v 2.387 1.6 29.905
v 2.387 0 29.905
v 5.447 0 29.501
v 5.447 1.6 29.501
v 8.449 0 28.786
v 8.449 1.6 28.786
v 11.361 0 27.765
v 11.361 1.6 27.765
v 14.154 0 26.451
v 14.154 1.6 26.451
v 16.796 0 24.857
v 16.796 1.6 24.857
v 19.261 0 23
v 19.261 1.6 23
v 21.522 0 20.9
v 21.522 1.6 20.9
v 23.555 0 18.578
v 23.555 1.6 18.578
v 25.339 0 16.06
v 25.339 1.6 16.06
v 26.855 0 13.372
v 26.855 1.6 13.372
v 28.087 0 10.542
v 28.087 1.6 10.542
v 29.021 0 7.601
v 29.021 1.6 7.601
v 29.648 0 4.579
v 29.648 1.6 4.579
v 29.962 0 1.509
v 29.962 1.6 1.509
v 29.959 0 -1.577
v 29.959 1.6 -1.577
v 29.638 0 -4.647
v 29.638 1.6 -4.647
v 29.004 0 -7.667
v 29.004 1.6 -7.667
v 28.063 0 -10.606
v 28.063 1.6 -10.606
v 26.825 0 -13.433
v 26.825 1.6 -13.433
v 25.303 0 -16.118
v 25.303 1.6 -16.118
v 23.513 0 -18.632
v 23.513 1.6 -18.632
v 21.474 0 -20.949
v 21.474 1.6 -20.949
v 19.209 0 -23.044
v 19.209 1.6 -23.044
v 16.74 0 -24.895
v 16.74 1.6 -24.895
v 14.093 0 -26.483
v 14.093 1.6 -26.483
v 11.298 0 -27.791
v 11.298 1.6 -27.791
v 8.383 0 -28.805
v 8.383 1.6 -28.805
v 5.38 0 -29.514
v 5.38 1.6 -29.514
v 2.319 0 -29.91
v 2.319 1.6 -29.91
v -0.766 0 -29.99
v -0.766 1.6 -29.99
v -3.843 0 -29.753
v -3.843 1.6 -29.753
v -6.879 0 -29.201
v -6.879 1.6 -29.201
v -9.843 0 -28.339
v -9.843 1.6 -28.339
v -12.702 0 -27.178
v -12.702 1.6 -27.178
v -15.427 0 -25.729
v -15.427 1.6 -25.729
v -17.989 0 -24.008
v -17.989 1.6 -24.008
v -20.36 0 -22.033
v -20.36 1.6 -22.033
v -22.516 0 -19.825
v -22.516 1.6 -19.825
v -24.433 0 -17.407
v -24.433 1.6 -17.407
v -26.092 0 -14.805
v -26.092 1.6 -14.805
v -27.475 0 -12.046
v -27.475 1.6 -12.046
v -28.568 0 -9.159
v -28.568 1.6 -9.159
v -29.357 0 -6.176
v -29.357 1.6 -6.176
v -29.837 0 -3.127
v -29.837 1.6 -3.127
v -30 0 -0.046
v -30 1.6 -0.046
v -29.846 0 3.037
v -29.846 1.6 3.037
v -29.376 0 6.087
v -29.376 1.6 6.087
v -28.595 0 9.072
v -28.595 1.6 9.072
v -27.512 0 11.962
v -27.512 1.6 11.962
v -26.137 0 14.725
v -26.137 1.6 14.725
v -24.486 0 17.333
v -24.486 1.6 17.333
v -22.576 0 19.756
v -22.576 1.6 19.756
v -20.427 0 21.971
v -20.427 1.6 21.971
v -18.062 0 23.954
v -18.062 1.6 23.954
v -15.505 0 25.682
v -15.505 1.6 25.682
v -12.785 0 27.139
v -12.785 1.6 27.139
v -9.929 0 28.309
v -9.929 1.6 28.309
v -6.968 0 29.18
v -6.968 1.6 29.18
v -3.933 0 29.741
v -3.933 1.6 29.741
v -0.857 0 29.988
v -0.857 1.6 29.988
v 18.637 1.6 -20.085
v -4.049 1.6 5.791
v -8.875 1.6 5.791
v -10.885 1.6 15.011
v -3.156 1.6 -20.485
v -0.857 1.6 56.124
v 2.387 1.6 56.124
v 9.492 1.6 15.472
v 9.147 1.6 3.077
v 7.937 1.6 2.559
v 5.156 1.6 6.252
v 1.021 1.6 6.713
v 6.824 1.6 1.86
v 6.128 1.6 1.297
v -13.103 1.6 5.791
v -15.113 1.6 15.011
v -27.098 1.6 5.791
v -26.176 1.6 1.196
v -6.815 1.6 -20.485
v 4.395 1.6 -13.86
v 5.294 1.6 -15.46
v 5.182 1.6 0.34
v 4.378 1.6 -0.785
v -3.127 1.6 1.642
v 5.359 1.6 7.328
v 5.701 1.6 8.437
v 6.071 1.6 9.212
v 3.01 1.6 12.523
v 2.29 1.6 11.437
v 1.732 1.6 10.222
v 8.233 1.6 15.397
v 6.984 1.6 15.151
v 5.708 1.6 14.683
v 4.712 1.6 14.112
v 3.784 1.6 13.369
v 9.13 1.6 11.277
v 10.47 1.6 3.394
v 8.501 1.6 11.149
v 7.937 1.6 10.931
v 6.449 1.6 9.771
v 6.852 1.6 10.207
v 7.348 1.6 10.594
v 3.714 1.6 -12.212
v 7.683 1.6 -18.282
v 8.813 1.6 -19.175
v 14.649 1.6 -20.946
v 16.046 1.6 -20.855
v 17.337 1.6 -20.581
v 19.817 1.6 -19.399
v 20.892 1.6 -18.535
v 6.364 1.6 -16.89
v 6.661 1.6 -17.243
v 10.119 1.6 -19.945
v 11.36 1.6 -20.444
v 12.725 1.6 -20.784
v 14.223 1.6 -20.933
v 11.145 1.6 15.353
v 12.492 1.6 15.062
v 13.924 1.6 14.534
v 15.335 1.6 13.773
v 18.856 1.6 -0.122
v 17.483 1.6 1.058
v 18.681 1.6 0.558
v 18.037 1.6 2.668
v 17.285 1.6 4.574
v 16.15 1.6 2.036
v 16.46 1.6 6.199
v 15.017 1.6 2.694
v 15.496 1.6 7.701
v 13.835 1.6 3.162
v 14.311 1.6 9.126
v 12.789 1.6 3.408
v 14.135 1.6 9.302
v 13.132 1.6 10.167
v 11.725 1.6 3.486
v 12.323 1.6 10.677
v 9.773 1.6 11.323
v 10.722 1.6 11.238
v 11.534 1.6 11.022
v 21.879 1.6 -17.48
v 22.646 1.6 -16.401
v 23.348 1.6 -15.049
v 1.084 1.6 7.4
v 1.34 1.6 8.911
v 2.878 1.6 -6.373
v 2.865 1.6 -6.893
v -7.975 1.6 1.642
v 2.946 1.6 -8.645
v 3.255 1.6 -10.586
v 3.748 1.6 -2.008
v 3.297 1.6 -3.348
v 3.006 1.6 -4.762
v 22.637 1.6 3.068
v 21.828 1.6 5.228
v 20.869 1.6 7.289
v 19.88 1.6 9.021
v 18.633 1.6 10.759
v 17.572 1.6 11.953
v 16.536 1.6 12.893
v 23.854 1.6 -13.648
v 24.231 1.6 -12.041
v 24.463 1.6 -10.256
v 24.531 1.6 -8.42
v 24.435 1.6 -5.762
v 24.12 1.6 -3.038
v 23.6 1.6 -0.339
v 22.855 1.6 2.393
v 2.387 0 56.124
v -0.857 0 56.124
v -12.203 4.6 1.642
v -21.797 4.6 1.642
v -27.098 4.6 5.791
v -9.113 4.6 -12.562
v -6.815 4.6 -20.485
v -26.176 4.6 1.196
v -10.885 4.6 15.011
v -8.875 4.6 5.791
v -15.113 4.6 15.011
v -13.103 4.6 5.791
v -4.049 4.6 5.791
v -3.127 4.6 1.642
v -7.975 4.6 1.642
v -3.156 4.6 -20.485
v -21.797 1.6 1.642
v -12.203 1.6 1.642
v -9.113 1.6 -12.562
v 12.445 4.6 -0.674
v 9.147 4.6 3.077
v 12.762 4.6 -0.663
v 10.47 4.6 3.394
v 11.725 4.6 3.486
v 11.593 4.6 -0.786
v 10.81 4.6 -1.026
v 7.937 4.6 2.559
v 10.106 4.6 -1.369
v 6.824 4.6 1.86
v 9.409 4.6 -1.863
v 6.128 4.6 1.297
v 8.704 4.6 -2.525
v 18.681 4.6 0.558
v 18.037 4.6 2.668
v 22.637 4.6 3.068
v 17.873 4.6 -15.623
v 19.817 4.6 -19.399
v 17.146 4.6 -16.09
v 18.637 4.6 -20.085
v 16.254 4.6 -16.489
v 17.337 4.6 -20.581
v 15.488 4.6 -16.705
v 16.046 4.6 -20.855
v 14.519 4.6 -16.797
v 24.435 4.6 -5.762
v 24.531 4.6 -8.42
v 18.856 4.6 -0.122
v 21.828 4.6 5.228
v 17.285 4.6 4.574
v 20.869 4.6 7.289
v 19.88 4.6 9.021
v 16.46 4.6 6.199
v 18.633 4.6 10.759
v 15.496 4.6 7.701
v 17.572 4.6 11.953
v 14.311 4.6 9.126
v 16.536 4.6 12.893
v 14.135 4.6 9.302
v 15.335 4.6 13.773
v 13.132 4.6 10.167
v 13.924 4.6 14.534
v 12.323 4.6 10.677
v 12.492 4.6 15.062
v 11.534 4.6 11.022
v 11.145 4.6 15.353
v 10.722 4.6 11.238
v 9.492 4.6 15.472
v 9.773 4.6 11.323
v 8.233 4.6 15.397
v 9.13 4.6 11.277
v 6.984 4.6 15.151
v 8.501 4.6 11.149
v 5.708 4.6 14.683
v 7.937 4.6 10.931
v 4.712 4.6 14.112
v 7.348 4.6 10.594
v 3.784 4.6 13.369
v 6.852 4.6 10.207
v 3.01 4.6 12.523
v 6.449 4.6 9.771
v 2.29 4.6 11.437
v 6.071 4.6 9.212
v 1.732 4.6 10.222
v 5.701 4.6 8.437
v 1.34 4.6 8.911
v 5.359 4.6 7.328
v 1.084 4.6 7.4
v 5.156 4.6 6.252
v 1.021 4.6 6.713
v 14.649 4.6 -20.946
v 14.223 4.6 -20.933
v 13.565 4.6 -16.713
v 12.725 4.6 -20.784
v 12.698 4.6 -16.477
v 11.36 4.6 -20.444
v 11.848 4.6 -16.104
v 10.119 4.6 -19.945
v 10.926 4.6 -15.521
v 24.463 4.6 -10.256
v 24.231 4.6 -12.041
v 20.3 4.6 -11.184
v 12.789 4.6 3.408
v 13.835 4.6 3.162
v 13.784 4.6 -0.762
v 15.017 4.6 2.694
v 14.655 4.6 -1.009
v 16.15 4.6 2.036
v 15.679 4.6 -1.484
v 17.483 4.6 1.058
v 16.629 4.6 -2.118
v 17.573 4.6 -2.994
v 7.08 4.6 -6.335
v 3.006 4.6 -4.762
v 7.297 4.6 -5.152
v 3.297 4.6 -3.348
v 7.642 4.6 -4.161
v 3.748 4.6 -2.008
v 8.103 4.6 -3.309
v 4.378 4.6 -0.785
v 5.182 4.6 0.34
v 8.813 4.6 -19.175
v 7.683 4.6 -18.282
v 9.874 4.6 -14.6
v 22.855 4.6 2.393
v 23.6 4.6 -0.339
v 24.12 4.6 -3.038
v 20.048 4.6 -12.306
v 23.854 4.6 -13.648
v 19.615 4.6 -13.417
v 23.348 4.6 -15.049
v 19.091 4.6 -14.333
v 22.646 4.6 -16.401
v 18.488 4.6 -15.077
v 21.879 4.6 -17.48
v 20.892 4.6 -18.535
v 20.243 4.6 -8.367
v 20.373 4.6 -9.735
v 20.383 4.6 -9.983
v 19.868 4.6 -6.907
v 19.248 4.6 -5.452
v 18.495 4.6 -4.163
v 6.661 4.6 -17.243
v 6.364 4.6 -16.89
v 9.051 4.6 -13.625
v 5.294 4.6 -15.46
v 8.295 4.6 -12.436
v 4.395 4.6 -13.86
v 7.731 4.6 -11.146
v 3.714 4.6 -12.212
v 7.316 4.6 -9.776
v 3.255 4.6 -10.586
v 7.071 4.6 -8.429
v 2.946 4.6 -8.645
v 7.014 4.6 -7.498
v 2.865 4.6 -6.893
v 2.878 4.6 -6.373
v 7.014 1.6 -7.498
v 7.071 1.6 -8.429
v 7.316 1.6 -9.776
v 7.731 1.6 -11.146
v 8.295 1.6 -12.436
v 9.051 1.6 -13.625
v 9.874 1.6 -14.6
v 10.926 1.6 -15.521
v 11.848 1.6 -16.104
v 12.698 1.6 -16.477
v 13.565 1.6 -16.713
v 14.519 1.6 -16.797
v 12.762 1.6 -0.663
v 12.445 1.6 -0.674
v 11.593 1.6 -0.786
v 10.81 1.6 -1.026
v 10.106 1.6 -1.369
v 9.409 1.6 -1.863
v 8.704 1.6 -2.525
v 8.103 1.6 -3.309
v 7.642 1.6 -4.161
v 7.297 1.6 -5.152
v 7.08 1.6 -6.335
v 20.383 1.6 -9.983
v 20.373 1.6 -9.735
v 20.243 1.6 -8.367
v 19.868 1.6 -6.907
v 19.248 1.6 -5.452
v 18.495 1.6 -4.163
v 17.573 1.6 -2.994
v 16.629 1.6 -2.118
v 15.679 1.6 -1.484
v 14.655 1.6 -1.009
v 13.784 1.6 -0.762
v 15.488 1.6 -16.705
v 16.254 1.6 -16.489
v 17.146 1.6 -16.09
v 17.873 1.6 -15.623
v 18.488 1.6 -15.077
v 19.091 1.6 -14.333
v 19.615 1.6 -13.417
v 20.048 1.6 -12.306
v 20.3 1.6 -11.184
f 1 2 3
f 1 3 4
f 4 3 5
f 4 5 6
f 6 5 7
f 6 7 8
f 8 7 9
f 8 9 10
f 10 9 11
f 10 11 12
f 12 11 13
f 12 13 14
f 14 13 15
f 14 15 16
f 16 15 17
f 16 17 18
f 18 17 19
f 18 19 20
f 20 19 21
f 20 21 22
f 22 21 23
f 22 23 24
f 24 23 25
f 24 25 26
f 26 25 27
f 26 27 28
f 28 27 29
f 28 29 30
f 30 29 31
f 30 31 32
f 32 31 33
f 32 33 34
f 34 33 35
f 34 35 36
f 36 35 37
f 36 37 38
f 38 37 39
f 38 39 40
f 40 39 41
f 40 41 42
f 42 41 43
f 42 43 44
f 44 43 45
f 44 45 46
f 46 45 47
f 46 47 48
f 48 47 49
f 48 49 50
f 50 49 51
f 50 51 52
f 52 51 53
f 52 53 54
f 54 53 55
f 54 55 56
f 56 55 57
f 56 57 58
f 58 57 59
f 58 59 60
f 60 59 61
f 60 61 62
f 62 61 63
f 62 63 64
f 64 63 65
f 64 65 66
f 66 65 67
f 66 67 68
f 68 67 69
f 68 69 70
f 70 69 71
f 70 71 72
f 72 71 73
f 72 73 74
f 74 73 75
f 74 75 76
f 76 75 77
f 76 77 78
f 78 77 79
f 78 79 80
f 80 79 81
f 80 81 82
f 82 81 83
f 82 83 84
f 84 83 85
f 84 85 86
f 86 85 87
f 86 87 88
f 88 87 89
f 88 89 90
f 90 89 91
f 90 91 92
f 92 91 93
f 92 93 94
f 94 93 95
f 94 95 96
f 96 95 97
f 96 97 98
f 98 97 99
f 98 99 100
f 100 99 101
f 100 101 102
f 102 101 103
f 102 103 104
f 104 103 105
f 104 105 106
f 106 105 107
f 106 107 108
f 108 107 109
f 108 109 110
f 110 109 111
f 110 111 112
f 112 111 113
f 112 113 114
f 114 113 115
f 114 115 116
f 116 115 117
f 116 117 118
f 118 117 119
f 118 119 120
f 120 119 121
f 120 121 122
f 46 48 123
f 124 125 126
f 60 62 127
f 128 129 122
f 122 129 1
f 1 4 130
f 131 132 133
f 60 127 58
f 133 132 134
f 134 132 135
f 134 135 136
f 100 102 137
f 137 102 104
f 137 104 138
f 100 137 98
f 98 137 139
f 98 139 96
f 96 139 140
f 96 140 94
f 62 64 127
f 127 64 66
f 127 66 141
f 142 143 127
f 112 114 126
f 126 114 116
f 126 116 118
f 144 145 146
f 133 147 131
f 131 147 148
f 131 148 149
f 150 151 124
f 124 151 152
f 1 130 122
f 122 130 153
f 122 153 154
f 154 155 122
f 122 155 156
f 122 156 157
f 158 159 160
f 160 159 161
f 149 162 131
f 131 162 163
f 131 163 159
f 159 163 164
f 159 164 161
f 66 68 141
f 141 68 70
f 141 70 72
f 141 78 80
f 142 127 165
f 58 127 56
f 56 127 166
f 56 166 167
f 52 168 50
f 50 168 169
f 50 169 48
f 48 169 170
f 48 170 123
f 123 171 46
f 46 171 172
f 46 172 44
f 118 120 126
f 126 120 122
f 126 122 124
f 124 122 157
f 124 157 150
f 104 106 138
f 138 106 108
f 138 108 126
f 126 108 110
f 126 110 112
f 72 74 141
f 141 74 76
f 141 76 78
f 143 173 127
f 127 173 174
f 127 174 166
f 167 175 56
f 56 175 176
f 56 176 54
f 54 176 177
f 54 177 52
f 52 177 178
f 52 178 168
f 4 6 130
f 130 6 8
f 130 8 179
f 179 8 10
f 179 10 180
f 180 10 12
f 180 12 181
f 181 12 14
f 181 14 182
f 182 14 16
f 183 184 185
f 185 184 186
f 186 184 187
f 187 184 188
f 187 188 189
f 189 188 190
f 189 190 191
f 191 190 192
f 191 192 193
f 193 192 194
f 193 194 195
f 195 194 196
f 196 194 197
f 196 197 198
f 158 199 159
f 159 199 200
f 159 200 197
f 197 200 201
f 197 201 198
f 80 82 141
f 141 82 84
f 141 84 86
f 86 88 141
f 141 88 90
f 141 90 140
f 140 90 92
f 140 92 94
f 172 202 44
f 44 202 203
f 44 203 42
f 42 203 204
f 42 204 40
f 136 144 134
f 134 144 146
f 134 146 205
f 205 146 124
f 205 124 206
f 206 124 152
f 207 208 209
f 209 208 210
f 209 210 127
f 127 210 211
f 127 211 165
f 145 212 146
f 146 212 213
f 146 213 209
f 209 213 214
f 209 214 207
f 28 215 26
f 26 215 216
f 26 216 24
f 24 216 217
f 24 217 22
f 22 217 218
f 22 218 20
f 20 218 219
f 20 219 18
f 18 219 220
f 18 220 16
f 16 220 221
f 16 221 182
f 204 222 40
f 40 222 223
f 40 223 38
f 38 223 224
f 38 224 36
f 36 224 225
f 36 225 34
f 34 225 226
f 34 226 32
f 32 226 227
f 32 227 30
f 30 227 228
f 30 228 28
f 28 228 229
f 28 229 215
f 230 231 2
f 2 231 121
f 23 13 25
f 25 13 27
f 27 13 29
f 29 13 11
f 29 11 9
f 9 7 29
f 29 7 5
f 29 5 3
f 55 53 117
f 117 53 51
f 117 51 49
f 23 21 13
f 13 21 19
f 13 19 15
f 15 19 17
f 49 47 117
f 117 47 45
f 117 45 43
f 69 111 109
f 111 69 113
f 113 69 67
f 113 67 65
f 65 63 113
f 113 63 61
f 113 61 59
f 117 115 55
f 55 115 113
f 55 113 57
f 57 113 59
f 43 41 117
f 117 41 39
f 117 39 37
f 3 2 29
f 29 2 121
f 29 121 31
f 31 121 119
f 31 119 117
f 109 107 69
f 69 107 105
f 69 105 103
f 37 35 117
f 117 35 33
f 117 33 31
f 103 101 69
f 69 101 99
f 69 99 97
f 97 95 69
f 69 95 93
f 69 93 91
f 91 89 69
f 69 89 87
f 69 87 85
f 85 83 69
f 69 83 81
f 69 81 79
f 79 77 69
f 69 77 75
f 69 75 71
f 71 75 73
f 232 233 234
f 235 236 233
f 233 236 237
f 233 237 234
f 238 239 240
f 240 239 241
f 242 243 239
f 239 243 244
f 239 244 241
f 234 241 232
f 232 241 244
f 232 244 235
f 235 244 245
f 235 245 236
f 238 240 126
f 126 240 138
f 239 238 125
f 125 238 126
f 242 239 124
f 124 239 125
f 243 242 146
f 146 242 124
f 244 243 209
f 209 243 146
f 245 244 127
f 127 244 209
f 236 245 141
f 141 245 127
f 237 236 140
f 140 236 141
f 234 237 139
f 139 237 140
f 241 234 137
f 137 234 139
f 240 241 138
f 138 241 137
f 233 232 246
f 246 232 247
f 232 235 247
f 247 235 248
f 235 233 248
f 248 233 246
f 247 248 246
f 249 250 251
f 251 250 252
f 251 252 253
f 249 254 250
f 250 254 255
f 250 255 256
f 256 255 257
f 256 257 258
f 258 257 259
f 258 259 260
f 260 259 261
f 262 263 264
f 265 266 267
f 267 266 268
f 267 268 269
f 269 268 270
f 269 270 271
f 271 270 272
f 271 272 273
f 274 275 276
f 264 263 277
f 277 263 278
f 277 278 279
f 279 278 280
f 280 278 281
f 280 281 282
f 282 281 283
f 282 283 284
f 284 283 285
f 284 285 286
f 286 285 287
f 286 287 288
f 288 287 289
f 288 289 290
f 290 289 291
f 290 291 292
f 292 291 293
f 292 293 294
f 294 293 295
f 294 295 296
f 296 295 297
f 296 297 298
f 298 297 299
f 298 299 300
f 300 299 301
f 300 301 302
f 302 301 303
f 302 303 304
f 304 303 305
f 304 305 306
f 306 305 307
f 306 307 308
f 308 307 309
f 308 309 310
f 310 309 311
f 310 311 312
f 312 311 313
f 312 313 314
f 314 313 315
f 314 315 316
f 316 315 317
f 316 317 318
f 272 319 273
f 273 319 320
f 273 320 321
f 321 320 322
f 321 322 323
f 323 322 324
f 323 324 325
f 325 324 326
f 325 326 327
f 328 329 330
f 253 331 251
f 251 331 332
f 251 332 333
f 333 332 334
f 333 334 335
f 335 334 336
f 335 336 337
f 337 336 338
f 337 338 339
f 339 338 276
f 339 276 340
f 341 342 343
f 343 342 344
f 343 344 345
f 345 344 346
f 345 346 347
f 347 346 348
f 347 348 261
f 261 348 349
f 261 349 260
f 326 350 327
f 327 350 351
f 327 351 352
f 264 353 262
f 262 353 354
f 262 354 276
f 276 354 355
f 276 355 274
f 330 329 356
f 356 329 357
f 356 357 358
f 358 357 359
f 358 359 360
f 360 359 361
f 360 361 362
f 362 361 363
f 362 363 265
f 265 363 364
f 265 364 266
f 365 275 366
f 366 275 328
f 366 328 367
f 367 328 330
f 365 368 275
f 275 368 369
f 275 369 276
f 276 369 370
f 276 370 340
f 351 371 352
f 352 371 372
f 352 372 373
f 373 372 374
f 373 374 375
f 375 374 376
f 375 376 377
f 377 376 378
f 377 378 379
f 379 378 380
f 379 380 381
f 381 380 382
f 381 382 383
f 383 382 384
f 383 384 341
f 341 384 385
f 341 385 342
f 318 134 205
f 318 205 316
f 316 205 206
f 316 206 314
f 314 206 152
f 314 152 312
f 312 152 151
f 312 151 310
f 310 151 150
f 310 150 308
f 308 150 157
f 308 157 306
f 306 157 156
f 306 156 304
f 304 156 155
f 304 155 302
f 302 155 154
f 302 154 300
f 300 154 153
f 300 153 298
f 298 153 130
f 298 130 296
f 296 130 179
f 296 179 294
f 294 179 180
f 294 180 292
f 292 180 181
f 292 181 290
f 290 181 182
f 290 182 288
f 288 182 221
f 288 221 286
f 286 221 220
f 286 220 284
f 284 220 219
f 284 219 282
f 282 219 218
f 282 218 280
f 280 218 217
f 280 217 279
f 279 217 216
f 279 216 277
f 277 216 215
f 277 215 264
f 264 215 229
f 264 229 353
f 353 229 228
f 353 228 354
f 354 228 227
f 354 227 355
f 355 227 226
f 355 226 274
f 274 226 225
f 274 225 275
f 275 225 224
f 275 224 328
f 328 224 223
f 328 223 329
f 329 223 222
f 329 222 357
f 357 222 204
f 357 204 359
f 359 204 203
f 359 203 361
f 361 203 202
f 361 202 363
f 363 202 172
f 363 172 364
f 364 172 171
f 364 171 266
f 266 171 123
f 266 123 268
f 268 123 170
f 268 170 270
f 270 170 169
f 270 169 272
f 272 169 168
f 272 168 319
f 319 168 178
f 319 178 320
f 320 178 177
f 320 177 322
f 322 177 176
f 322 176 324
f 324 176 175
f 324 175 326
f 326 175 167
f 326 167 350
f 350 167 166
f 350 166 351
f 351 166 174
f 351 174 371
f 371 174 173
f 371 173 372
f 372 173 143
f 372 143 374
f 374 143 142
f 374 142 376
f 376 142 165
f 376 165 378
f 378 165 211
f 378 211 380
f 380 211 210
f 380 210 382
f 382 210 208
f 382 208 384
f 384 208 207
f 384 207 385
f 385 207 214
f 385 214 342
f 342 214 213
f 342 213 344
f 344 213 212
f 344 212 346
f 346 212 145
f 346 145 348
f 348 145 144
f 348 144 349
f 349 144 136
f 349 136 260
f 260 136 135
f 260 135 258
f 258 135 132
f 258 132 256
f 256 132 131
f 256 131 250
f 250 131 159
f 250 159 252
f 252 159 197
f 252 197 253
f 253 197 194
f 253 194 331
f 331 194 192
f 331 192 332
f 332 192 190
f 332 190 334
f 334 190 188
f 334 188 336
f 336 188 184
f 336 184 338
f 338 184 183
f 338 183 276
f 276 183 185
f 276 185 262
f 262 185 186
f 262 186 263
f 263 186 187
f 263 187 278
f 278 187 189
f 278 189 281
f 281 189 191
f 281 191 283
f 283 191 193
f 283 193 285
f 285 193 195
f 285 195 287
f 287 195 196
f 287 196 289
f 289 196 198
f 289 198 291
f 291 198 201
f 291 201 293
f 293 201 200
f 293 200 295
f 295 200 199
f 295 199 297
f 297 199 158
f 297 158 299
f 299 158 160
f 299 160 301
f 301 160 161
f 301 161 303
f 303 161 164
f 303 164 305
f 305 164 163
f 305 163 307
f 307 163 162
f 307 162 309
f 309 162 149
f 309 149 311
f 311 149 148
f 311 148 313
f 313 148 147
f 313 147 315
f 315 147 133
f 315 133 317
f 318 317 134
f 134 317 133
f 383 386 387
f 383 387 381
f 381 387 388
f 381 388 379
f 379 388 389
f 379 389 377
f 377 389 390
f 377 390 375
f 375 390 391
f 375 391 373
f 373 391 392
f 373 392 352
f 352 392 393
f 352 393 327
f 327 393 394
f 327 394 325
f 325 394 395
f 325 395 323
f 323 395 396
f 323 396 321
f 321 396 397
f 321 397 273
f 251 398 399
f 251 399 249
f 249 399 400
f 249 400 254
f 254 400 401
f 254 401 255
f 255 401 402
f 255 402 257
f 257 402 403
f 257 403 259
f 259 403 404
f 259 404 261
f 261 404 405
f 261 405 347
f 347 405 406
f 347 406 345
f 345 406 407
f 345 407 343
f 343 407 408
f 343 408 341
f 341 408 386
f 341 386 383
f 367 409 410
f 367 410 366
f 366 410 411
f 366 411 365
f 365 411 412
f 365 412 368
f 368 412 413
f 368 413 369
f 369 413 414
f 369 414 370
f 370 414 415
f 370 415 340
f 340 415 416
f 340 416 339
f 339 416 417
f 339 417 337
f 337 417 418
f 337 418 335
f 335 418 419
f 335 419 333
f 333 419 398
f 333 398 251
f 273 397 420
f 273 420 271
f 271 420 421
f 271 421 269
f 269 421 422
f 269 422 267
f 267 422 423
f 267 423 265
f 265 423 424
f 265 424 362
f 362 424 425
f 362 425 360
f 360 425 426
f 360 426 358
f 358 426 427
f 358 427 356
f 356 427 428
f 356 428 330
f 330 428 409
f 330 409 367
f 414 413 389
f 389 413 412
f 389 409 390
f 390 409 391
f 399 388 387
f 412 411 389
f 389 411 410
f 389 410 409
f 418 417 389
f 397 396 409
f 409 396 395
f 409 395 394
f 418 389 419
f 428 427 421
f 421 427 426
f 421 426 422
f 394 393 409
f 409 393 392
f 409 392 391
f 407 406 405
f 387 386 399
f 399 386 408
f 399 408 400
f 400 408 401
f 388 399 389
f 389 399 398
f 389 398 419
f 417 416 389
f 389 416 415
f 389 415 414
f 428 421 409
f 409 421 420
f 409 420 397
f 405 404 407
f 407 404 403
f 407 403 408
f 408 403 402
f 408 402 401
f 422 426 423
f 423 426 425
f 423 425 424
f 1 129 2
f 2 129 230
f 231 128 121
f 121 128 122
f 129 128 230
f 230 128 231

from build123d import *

# Parameters (mm, degrees)
SKETCH_1_R      = 30
EXTRUDE_1_DEPTH = 1.6
EXTRUDE_2_DEPTH = 3
SKETCH_3_W      = 3.244311069
SKETCH_3_H      = 35.273993815
EXTRUDE_5_DEPTH = 1.6


with BuildPart() as part:
    # Эскиз1 → Бобышка-Вытянуть1 (new body)
    with BuildSketch(Plane(origin=(0, 0, 0), x_dir=(1, 0, 0), z_dir=(0, 1, 0))):
        Circle(SKETCH_1_R)
    extrude(amount=EXTRUDE_1_DEPTH)

    # Эскиз2 → Бобышка-Вытянуть2 (add)
    with BuildSketch(Plane(origin=(0, 1.6, 0), x_dir=(1, 0, 0), z_dir=(0, 1, 0))):
        Polygon((-15.112940101, -15.010744766), (-13.103354207, -5.79113923), (-27.098427297, -5.79113923), (-26.176466744, -1.195742096), (-6.815295119, 20.484736546), (-3.156264172, 20.484736546), (-7.974948628, -1.642316739), (-3.127452905, -1.642316739), (-4.049413459, -5.79113923), (-8.875300731, -5.79113923), (-10.884886625, -15.010744766), align=None)
        Polygon((-12.203002104, -1.642316739), (-9.112993686, 12.561638039), (-21.797154114, -1.642316739), align=None, mode=Mode.SUBTRACT)
        with BuildLine():
            Line((1.021369586, -6.713099784), (5.155786443, -6.252119507))
            add(Edge.make_bspline(
                [(5.155786443, -6.252119507), (5.192135281, -6.473381577), (5.262387165, -6.901017726), (5.397879979, -7.515231953), (5.562416953, -8.078982569), (5.75783084, -8.594252788), (5.978056496, -9.060074627), (6.225780557, -9.477912909), (6.498384414, -9.845044122), (6.888403904, -10.266320667), (7.442457962, -10.681510063), (8.162107094, -11.060328313), (8.950693699, -11.283404951), (9.495307412, -11.309570842), (9.772792028, -11.322902552)],
                knots=[0, 0, 0, 0, 0.000672606, 0.001299954, 0.00188569, 0.002432819, 0.002951522, 0.003429575, 0.003887676, 0.004320864, 0.005147809, 0.005949945, 0.006750366, 0.007581816, 0.007581816, 0.007581816, 0.007581816], degree=3))
            add(Edge.make_bspline(
                [(9.772792028, -11.322902552), (9.974836791, -11.315289739), (10.378983376, -11.300061965), (10.979375815, -11.198014835), (11.565207937, -11.022197171), (12.140680484, -10.782461737), (12.704801504, -10.469434648), (13.257512824, -10.085992109), (13.800962323, -9.638904949), (14.138144983, -9.299567127), (14.310566627, -9.12604342)],
                knots=[0, 0, 0, 0, 0.000606108, 0.001212386, 0.001820886, 0.002437558, 0.003079094, 0.003752394, 0.004453291, 0.005186777, 0.005186777, 0.005186777, 0.005186777], degree=3))
            add(Edge.make_bspline(
                [(14.310566627, -9.12604342), (14.562332157, -8.846489735), (15.074816945, -8.277440386), (15.771928843, -7.338032377), (16.413643396, -6.306492), (17.009949904, -5.193403292), (17.552241758, -3.989577112), (18.036311249, -2.697590667), (18.489551109, -1.323270245), (18.731729262, -0.366685376), (18.855544044, 0.122373383)],
                knots=[0, 0, 0, 0, 0.001128178, 0.002296479, 0.003503568, 0.004769995, 0.006082035, 0.007461238, 0.008907642, 0.010420662, 0.010420662, 0.010420662, 0.010420662], degree=3))
            add(Edge.make_bspline(
                [(18.855544044, 0.122373383), (18.515554142, -0.181681505), (17.868313732, -0.760512257), (16.895223997, -1.523524974), (15.986257834, -2.159743633), (15.121792782, -2.661558355), (14.274538335, -3.030078632), (13.434324295, -3.290513005), (12.583841099, -3.459331039), (12.011241698, -3.477265014), (11.724755387, -3.486237846)],
                knots=[0, 0, 0, 0, 0.001368042, 0.002604349, 0.003707227, 0.004694433, 0.005597662, 0.0064725, 0.007329998, 0.008188615, 0.008188615, 0.008188615, 0.008188615], degree=3))
            add(Edge.make_bspline(
                [(11.724755387, -3.486237846), (11.467545037, -3.478838371), (10.95835582, -3.464189922), (10.202997804, -3.361403617), (9.470361257, -3.188438097), (8.755779823, -2.949020303), (8.065155466, -2.63719131), (7.391074846, -2.26158419), (6.74101139, -1.813836573), (6.334287268, -1.470552033), (6.128166715, -1.296581532)],
                knots=[0, 0, 0, 0, 0.000771542, 0.001527392, 0.002282143, 0.003026964, 0.003784631, 0.004552094, 0.00533928, 0.006148115, 0.006148115, 0.006148115, 0.006148115], degree=3))
            add(Edge.make_bspline(
                [(6.128166715, -1.296581532), (5.866741871, -1.053430833), (5.344675784, -0.567858261), (4.68598861, 0.277826316), (4.120100969, 1.190125333), (3.651772278, 2.178943205), (3.306695947, 3.251277107), (3.042972026, 4.394926248), (2.892902816, 5.618933407), (2.874665369, 6.460451788), (2.865290693, 6.893021198)],
                knots=[0, 0, 0, 0, 0.001069612, 0.002136018, 0.003203397, 0.004286026, 0.00540895, 0.006576162, 0.0078028, 0.009100287, 0.009100287, 0.009100287, 0.009100287], degree=3))
            add(Edge.make_bspline(
                [(2.865290693, 6.893021198), (2.875207181, 7.388228075), (2.89472349, 8.362828189), (3.083578082, 9.796121672), (3.373185787, 11.176809481), (3.796125522, 12.501570161), (4.330630954, 13.774732447), (4.980823191, 14.99643932), (5.751264631, 16.165307898), (6.355998775, 16.881862763), (6.66117516, 17.243468975)],
                knots=[0, 0, 0, 0, 0.001484899, 0.00292238, 0.004329457, 0.005712191, 0.007087382, 0.00846651, 0.00985891, 0.011277426, 0.011277426, 0.011277426, 0.011277426], degree=3))
            add(Edge.make_bspline(
                [(6.66117516, 17.243468975), (6.934144804, 17.537158668), (7.47161345, 18.115424437), (8.359517632, 18.87278791), (9.296948211, 19.509609385), (10.272237605, 20.044447486), (11.302446737, 20.446715103), (12.37692951, 20.736367773), (13.497965187, 20.913646613), (14.261903613, 20.934929686), (14.649099018, 20.945716823)],
                knots=[0, 0, 0, 0, 0.001202159, 0.002367012, 0.003491782, 0.004597221, 0.005696684, 0.006800948, 0.007930689, 0.009091773, 0.009091773, 0.009091773, 0.009091773], degree=3))
            add(Edge.make_bspline(
                [(14.649099018, 20.945716823), (14.997787132, 20.936379292), (15.681760043, 20.918063159), (16.687233548, 20.762950374), (17.64616698, 20.504084004), (18.560197693, 20.142451509), (19.424142306, 19.676277717), (20.242163935, 19.110195911), (21.017638488, 18.442114073), (21.740577275, 17.67553899), (22.398010202, 16.814571371), (22.978272504, 15.868653702), (23.458966364, 14.829820422), (23.856664916, 13.711476165), (24.153976582, 12.506286792), (24.379655281, 11.221838923), (24.507641015, 9.848780448), (24.523306789, 8.905267443), (24.531363702, 8.420018365)],
                knots=[0, 0, 0, 0, 0.001045625, 0.002051056, 0.003043504, 0.004019904, 0.004993138, 0.00598213, 0.006998544, 0.008058362, 0.009137391, 0.010242994, 0.011380446, 0.012565085, 0.01379843, 0.015099829, 0.016474492, 0.017930103, 0.017930103, 0.017930103, 0.017930103], degree=3))
            add(Edge.make_bspline(
                [(24.531363702, 8.420018365), (24.525664072, 7.934918015), (24.514284046, 6.966354111), (24.427262909, 5.516930729), (24.273582197, 4.073215956), (24.065445524, 2.633838437), (23.799008275, 1.199214086), (23.472015699, -0.229682915), (23.095999668, -1.657124653), (22.790400156, -2.596840611), (22.637022877, -3.068474471)],
                knots=[0, 0, 0, 0, 0.001455254, 0.002905598, 0.004354081, 0.005809709, 0.007267635, 0.008730162, 0.010206528, 0.011694097, 0.011694097, 0.011694097, 0.011694097], degree=3))
            add(Edge.make_bspline(
                [(22.637022877, -3.068474471), (22.445421429, -3.608260191), (22.072409742, -4.659120639), (21.438427503, -6.164879435), (20.744443812, -7.554296537), (20.013593824, -8.845074722), (19.218836128, -10.01903208), (18.382278177, -11.090308185), (17.500898079, -12.058312556), (16.853999376, -12.618129566), (16.536237026, -12.893116619)],
                knots=[0, 0, 0, 0, 0.00171814, 0.003344892, 0.004897513, 0.006375197, 0.00779159, 0.009146026, 0.01045087, 0.011710621, 0.011710621, 0.011710621, 0.011710621], degree=3))
            add(Edge.make_bspline(
                [(16.536237026, -12.893116619), (16.275517551, -13.099437091), (15.75979639, -13.50755326), (14.936658101, -14.031619265), (14.08857004, -14.475834427), (13.213812191, -14.833383605), (12.320192974, -15.126680855), (11.398582261, -15.328844612), (10.452772335, -15.443440865), (9.813908073, -15.462246084), (9.491882172, -15.471725043)],
                knots=[0, 0, 0, 0, 0.000996907, 0.001971952, 0.002922341, 0.00386536, 0.00480383, 0.005740556, 0.006691137, 0.007657281, 0.007657281, 0.007657281, 0.007657281], degree=3))
            add(Edge.make_bspline(
                [(9.491882172, -15.471725043), (9.198617884, -15.465062279), (8.622044237, -15.451962922), (7.778171618, -15.341349076), (6.974083778, -15.163734203), (6.214126437, -14.906579258), (5.487258858, -14.594261932), (4.811253582, -14.191925812), (4.168798029, -13.730625352), (3.581420174, -13.187339966), (3.039567521, -12.584738429), (2.563524473, -11.915474189), (2.143250657, -11.193544766), (1.789964119, -10.411188257), (1.502466787, -9.568624311), (1.27386085, -8.670395225), (1.104806925, -7.712140535), (1.049695435, -7.052260618), (1.021369586, -6.713099784)],
                knots=[0, 0, 0, 0, 0.000879481, 0.001729108, 0.002548648, 0.003345854, 0.004132776, 0.004917222, 0.005700974, 0.006501394, 0.007312503, 0.008128045, 0.008960711, 0.009814936, 0.010698742, 0.011628129, 0.012593226, 0.013613817, 0.013613817, 0.013613817, 0.013613817], degree=3))
        make_face()
        with BuildLine():
            add(Edge.make_bspline(
                [(7.014113184, 7.498057811), (7.019768123, 7.243317269), (7.030786271, 6.746977844), (7.112971363, 6.022465552), (7.237466445, 5.336389944), (7.429107785, 4.691874289), (7.662640551, 4.083140966), (7.963120255, 3.518815935), (8.307660253, 2.991004091), (8.703683128, 2.507822029), (9.141020711, 2.081613788), (9.598578365, 1.703117561), (10.071970051, 1.374977493), (10.574224084, 1.115081458), (11.093650898, 0.91285426), (11.631959273, 0.767655698), (12.189958182, 0.678560926), (12.569555519, 0.667958611), (12.76196101, 0.662584645)],
                knots=[0, 0, 0, 0, 0.000764042, 0.001488668, 0.00218511, 0.002852956, 0.003503007, 0.004137714, 0.004767003, 0.005391367, 0.00600766, 0.006596047, 0.007171417, 0.007731988, 0.008288426, 0.008840559, 0.00940187, 0.009978815, 0.009978815, 0.009978815, 0.009978815], degree=3))
            add(Edge.make_bspline(
                [(12.76196101, 0.662584645), (13.05139438, 0.676731012), (13.638138298, 0.705408752), (14.512398022, 0.935715715), (15.382277568, 1.299423228), (16.240003107, 1.808003519), (17.070741272, 2.454050946), (17.83396819, 3.259410645), (18.547032162, 4.195807232), (19.170277098, 5.263560877), (19.709790373, 6.398811887), (20.094032745, 7.57986936), (20.33518312, 8.775140421), (20.366777551, 9.580970443), (20.382541211, 9.983029616)],
                knots=[0, 0, 0, 0, 0.000867334, 0.001758273, 0.002694639, 0.003689072, 0.004740905, 0.005841216, 0.007008095, 0.008264383, 0.009543689, 0.010771405, 0.011982014, 0.013187491, 0.013187491, 0.013187491, 0.013187491], degree=3))
            add(Edge.make_bspline(
                [(20.382541211, 9.983029616), (20.372951463, 10.295722068), (20.354025111, 10.912852788), (20.200419667, 11.820980608), (19.936709411, 12.688869248), (19.587274972, 13.514264205), (19.151964964, 14.277348135), (18.633780293, 14.952051568), (18.035571041, 15.522736313), (17.372002119, 15.97945588), (16.675354278, 16.338724835), (15.964465751, 16.60024492), (15.24524014, 16.769356322), (14.760441115, 16.787750578), (14.519448315, 16.796894332)],
                knots=[0, 0, 0, 0, 0.000937723, 0.001850692, 0.002753088, 0.003653468, 0.004534364, 0.005381515, 0.006196675, 0.007003905, 0.007789937, 0.008541933, 0.009272406, 0.009994451, 0.009994451, 0.009994451, 0.009994451], degree=3))
            add(Edge.make_bspline(
                [(14.519448315, 16.796894332), (14.288282748, 16.789085648), (13.824283604, 16.773411934), (13.13177034, 16.628464349), (12.446585191, 16.395690831), (11.768928129, 16.078840648), (11.110004943, 15.671818458), (10.476966926, 15.17730675), (9.858820739, 14.606825776), (9.28343841, 13.947489545), (8.752685138, 13.222672572), (8.278203551, 12.443585563), (7.892711178, 11.60155963), (7.576689262, 10.730159546), (7.323697649, 9.861582737), (7.155792922, 9.02703603), (7.036547924, 8.245734242), (7.02140133, 7.740947846), (7.014113184, 7.498057811)],
                knots=[0, 0, 0, 0, 0.00069282, 0.001390638, 0.002112683, 0.00286025, 0.003629874, 0.00443091, 0.005266747, 0.006149643, 0.007051492, 0.007959419, 0.008881042, 0.009824418, 0.010738609, 0.011591831, 0.012377202, 0.013105578, 0.013105578, 0.013105578, 0.013105578], degree=3))
        make_face(mode=Mode.SUBTRACT)
    extrude(amount=EXTRUDE_2_DEPTH)

    # Эскиз3 → Бобышка-Вытянуть5 (add)
    with BuildSketch(Plane.XZ):
        with Locations((0.764892295, 38.487099642)):
            Rectangle(SKETCH_3_W, SKETCH_3_H)
    extrude(amount=-EXTRUDE_5_DEPTH)


solid = part.part
